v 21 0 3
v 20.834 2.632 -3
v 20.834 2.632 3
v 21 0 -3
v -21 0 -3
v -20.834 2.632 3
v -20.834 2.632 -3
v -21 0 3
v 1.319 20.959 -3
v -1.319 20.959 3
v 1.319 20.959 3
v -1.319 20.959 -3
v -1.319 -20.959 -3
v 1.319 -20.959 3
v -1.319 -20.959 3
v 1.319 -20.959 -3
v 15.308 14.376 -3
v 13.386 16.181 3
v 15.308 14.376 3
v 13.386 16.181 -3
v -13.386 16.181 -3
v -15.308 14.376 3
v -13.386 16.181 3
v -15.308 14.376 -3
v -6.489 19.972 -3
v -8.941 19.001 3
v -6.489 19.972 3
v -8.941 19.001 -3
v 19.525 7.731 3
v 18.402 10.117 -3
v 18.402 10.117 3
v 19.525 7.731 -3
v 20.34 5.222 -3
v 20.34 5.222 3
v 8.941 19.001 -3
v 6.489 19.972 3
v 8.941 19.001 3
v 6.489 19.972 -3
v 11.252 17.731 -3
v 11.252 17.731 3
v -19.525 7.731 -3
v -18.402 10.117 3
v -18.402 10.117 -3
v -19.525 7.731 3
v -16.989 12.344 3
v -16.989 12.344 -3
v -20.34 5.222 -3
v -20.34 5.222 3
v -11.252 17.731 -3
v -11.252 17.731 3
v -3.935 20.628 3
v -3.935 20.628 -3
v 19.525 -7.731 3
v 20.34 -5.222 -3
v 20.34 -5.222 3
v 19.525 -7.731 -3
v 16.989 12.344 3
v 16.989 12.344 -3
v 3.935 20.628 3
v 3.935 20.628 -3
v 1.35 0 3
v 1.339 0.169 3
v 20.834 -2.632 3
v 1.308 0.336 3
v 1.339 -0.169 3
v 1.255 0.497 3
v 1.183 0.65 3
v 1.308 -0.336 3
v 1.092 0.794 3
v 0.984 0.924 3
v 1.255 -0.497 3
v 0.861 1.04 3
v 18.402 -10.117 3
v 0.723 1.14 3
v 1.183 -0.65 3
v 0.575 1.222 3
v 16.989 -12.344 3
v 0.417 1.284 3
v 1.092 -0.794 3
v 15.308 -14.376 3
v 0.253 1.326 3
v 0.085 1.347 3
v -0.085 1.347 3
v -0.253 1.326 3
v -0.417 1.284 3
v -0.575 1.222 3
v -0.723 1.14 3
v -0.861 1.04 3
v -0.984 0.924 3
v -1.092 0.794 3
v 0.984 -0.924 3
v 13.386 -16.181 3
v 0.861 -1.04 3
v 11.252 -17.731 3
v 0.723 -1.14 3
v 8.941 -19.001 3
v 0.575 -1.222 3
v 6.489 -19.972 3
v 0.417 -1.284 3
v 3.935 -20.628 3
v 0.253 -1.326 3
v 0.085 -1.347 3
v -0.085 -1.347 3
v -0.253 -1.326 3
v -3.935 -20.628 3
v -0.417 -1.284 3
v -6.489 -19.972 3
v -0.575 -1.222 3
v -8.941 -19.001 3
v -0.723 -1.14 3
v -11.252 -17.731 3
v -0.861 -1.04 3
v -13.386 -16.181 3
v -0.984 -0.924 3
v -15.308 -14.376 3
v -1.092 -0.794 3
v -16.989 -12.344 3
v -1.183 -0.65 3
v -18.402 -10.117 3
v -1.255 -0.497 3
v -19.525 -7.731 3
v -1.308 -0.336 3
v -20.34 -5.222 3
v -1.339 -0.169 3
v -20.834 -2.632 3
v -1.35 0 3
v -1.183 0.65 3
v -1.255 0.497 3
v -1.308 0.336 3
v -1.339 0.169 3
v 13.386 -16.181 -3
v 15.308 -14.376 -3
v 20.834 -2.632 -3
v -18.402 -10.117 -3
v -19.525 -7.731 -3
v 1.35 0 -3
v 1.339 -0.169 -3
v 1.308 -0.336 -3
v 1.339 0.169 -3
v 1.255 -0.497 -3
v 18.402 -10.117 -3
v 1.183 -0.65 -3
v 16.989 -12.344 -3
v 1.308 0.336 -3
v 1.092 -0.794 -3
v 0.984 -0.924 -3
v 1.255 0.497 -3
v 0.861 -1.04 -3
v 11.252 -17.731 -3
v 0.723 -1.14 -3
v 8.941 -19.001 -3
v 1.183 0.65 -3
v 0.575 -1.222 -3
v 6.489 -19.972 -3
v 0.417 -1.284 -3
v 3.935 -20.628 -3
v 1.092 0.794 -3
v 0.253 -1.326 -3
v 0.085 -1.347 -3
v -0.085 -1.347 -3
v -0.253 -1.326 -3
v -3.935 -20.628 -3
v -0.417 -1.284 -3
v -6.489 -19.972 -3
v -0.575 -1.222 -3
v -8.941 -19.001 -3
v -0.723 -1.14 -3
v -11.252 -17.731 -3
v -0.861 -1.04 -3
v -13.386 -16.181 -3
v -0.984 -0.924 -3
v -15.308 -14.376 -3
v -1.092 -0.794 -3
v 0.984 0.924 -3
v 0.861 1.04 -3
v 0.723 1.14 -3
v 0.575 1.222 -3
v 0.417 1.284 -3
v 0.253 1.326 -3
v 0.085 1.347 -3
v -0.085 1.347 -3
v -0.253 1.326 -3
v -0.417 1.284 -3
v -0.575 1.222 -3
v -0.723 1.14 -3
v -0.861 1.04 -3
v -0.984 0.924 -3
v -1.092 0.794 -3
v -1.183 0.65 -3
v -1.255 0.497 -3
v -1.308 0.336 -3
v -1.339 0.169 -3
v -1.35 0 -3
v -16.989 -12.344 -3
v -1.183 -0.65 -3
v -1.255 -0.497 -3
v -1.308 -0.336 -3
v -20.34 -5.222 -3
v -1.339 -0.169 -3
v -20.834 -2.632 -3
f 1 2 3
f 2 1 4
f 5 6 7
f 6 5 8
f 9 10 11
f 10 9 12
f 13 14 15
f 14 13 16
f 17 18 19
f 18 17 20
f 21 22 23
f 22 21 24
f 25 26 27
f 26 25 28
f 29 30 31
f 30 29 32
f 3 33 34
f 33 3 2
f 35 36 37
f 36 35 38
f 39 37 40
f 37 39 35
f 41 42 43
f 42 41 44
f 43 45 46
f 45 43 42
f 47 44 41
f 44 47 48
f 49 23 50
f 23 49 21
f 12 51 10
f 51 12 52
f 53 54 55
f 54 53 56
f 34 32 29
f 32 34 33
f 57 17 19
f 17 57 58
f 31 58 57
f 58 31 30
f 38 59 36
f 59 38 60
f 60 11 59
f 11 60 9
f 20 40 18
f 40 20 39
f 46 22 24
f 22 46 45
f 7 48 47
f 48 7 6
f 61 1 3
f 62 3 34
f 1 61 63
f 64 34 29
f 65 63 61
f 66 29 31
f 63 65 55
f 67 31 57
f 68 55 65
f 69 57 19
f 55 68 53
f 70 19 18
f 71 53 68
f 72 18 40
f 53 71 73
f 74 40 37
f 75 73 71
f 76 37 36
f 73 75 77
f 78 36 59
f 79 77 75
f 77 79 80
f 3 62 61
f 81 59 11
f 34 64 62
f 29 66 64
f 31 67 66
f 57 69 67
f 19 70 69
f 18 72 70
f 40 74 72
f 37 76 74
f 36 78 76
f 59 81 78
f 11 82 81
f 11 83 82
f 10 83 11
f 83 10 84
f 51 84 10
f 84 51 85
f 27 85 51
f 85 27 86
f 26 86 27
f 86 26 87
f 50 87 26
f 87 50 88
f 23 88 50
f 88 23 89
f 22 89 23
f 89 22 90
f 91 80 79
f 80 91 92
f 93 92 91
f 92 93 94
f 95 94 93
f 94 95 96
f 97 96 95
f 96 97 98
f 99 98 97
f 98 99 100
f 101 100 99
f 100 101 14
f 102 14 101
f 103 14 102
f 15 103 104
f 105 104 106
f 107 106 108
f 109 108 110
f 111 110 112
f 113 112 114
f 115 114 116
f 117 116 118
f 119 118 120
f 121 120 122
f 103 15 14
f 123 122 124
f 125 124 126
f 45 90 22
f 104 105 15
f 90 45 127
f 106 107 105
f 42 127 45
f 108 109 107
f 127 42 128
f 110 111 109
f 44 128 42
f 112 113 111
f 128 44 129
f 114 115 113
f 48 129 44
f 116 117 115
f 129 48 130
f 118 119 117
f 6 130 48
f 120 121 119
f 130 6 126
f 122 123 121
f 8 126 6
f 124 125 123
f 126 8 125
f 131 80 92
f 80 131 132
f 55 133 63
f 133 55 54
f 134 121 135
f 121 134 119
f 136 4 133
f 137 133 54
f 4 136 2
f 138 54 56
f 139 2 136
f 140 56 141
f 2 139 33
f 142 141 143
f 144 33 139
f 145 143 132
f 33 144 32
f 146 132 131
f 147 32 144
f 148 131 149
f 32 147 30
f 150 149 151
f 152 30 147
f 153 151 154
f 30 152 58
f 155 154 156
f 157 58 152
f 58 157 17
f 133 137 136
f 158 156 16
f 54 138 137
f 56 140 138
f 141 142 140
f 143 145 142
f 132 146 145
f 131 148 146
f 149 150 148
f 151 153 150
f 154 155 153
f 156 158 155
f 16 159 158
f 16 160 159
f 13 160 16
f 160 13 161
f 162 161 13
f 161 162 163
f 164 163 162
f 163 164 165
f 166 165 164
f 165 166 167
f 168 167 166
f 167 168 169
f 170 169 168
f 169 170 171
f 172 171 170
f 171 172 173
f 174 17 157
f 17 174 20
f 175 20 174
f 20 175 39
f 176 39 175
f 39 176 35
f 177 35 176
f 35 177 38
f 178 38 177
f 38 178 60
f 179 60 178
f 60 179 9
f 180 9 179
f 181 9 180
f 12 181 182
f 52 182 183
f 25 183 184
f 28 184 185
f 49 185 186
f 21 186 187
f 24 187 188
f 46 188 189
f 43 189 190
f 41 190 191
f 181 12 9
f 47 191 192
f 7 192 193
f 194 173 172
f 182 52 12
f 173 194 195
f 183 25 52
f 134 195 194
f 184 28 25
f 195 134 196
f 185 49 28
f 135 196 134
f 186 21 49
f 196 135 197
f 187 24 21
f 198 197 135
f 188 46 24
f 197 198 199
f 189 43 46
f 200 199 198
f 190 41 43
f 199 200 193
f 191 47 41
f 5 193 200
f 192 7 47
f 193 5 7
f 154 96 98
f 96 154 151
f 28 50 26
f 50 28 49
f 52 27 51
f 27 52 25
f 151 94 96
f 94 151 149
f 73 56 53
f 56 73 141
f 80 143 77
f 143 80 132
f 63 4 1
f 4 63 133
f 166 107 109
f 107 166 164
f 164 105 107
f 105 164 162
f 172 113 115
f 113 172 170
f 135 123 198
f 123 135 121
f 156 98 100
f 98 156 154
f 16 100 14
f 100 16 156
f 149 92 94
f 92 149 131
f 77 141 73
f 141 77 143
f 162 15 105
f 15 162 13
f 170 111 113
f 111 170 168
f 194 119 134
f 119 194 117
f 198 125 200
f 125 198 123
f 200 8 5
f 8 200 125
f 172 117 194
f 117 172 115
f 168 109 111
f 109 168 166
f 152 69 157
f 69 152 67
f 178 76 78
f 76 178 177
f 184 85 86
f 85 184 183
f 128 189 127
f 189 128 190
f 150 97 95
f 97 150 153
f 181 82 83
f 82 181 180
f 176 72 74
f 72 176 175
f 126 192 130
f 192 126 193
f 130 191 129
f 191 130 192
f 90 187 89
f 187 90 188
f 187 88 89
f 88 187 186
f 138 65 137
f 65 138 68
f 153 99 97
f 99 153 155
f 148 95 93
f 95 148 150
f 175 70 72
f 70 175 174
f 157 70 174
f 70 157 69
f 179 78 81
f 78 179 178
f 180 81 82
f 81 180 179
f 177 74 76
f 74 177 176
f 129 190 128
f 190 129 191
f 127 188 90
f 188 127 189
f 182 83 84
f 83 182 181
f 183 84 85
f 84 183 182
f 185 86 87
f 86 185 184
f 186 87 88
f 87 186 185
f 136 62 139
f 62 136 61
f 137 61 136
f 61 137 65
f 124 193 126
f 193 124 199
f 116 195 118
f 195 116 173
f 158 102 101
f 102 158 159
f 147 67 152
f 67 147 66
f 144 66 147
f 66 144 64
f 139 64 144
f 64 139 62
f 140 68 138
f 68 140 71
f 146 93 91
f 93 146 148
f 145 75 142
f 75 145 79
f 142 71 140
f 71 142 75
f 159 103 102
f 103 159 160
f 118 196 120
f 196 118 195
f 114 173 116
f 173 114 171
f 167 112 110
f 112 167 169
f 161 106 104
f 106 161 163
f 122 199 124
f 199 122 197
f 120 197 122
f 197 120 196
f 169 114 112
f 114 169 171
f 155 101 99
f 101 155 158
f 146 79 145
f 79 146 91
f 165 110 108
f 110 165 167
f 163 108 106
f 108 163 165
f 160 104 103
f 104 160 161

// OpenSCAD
$fn = 50;


difference() {
	union() {
		translate(v = [0, 0, -3.0000000000]) {
			cylinder(h = 6, r = 21.0000000000);
		}
	}
	union() {
		translate(v = [0, 0, -100.0000000000]) {
			cylinder(h = 200, r = 1.3500000000);
		}
	}
}
